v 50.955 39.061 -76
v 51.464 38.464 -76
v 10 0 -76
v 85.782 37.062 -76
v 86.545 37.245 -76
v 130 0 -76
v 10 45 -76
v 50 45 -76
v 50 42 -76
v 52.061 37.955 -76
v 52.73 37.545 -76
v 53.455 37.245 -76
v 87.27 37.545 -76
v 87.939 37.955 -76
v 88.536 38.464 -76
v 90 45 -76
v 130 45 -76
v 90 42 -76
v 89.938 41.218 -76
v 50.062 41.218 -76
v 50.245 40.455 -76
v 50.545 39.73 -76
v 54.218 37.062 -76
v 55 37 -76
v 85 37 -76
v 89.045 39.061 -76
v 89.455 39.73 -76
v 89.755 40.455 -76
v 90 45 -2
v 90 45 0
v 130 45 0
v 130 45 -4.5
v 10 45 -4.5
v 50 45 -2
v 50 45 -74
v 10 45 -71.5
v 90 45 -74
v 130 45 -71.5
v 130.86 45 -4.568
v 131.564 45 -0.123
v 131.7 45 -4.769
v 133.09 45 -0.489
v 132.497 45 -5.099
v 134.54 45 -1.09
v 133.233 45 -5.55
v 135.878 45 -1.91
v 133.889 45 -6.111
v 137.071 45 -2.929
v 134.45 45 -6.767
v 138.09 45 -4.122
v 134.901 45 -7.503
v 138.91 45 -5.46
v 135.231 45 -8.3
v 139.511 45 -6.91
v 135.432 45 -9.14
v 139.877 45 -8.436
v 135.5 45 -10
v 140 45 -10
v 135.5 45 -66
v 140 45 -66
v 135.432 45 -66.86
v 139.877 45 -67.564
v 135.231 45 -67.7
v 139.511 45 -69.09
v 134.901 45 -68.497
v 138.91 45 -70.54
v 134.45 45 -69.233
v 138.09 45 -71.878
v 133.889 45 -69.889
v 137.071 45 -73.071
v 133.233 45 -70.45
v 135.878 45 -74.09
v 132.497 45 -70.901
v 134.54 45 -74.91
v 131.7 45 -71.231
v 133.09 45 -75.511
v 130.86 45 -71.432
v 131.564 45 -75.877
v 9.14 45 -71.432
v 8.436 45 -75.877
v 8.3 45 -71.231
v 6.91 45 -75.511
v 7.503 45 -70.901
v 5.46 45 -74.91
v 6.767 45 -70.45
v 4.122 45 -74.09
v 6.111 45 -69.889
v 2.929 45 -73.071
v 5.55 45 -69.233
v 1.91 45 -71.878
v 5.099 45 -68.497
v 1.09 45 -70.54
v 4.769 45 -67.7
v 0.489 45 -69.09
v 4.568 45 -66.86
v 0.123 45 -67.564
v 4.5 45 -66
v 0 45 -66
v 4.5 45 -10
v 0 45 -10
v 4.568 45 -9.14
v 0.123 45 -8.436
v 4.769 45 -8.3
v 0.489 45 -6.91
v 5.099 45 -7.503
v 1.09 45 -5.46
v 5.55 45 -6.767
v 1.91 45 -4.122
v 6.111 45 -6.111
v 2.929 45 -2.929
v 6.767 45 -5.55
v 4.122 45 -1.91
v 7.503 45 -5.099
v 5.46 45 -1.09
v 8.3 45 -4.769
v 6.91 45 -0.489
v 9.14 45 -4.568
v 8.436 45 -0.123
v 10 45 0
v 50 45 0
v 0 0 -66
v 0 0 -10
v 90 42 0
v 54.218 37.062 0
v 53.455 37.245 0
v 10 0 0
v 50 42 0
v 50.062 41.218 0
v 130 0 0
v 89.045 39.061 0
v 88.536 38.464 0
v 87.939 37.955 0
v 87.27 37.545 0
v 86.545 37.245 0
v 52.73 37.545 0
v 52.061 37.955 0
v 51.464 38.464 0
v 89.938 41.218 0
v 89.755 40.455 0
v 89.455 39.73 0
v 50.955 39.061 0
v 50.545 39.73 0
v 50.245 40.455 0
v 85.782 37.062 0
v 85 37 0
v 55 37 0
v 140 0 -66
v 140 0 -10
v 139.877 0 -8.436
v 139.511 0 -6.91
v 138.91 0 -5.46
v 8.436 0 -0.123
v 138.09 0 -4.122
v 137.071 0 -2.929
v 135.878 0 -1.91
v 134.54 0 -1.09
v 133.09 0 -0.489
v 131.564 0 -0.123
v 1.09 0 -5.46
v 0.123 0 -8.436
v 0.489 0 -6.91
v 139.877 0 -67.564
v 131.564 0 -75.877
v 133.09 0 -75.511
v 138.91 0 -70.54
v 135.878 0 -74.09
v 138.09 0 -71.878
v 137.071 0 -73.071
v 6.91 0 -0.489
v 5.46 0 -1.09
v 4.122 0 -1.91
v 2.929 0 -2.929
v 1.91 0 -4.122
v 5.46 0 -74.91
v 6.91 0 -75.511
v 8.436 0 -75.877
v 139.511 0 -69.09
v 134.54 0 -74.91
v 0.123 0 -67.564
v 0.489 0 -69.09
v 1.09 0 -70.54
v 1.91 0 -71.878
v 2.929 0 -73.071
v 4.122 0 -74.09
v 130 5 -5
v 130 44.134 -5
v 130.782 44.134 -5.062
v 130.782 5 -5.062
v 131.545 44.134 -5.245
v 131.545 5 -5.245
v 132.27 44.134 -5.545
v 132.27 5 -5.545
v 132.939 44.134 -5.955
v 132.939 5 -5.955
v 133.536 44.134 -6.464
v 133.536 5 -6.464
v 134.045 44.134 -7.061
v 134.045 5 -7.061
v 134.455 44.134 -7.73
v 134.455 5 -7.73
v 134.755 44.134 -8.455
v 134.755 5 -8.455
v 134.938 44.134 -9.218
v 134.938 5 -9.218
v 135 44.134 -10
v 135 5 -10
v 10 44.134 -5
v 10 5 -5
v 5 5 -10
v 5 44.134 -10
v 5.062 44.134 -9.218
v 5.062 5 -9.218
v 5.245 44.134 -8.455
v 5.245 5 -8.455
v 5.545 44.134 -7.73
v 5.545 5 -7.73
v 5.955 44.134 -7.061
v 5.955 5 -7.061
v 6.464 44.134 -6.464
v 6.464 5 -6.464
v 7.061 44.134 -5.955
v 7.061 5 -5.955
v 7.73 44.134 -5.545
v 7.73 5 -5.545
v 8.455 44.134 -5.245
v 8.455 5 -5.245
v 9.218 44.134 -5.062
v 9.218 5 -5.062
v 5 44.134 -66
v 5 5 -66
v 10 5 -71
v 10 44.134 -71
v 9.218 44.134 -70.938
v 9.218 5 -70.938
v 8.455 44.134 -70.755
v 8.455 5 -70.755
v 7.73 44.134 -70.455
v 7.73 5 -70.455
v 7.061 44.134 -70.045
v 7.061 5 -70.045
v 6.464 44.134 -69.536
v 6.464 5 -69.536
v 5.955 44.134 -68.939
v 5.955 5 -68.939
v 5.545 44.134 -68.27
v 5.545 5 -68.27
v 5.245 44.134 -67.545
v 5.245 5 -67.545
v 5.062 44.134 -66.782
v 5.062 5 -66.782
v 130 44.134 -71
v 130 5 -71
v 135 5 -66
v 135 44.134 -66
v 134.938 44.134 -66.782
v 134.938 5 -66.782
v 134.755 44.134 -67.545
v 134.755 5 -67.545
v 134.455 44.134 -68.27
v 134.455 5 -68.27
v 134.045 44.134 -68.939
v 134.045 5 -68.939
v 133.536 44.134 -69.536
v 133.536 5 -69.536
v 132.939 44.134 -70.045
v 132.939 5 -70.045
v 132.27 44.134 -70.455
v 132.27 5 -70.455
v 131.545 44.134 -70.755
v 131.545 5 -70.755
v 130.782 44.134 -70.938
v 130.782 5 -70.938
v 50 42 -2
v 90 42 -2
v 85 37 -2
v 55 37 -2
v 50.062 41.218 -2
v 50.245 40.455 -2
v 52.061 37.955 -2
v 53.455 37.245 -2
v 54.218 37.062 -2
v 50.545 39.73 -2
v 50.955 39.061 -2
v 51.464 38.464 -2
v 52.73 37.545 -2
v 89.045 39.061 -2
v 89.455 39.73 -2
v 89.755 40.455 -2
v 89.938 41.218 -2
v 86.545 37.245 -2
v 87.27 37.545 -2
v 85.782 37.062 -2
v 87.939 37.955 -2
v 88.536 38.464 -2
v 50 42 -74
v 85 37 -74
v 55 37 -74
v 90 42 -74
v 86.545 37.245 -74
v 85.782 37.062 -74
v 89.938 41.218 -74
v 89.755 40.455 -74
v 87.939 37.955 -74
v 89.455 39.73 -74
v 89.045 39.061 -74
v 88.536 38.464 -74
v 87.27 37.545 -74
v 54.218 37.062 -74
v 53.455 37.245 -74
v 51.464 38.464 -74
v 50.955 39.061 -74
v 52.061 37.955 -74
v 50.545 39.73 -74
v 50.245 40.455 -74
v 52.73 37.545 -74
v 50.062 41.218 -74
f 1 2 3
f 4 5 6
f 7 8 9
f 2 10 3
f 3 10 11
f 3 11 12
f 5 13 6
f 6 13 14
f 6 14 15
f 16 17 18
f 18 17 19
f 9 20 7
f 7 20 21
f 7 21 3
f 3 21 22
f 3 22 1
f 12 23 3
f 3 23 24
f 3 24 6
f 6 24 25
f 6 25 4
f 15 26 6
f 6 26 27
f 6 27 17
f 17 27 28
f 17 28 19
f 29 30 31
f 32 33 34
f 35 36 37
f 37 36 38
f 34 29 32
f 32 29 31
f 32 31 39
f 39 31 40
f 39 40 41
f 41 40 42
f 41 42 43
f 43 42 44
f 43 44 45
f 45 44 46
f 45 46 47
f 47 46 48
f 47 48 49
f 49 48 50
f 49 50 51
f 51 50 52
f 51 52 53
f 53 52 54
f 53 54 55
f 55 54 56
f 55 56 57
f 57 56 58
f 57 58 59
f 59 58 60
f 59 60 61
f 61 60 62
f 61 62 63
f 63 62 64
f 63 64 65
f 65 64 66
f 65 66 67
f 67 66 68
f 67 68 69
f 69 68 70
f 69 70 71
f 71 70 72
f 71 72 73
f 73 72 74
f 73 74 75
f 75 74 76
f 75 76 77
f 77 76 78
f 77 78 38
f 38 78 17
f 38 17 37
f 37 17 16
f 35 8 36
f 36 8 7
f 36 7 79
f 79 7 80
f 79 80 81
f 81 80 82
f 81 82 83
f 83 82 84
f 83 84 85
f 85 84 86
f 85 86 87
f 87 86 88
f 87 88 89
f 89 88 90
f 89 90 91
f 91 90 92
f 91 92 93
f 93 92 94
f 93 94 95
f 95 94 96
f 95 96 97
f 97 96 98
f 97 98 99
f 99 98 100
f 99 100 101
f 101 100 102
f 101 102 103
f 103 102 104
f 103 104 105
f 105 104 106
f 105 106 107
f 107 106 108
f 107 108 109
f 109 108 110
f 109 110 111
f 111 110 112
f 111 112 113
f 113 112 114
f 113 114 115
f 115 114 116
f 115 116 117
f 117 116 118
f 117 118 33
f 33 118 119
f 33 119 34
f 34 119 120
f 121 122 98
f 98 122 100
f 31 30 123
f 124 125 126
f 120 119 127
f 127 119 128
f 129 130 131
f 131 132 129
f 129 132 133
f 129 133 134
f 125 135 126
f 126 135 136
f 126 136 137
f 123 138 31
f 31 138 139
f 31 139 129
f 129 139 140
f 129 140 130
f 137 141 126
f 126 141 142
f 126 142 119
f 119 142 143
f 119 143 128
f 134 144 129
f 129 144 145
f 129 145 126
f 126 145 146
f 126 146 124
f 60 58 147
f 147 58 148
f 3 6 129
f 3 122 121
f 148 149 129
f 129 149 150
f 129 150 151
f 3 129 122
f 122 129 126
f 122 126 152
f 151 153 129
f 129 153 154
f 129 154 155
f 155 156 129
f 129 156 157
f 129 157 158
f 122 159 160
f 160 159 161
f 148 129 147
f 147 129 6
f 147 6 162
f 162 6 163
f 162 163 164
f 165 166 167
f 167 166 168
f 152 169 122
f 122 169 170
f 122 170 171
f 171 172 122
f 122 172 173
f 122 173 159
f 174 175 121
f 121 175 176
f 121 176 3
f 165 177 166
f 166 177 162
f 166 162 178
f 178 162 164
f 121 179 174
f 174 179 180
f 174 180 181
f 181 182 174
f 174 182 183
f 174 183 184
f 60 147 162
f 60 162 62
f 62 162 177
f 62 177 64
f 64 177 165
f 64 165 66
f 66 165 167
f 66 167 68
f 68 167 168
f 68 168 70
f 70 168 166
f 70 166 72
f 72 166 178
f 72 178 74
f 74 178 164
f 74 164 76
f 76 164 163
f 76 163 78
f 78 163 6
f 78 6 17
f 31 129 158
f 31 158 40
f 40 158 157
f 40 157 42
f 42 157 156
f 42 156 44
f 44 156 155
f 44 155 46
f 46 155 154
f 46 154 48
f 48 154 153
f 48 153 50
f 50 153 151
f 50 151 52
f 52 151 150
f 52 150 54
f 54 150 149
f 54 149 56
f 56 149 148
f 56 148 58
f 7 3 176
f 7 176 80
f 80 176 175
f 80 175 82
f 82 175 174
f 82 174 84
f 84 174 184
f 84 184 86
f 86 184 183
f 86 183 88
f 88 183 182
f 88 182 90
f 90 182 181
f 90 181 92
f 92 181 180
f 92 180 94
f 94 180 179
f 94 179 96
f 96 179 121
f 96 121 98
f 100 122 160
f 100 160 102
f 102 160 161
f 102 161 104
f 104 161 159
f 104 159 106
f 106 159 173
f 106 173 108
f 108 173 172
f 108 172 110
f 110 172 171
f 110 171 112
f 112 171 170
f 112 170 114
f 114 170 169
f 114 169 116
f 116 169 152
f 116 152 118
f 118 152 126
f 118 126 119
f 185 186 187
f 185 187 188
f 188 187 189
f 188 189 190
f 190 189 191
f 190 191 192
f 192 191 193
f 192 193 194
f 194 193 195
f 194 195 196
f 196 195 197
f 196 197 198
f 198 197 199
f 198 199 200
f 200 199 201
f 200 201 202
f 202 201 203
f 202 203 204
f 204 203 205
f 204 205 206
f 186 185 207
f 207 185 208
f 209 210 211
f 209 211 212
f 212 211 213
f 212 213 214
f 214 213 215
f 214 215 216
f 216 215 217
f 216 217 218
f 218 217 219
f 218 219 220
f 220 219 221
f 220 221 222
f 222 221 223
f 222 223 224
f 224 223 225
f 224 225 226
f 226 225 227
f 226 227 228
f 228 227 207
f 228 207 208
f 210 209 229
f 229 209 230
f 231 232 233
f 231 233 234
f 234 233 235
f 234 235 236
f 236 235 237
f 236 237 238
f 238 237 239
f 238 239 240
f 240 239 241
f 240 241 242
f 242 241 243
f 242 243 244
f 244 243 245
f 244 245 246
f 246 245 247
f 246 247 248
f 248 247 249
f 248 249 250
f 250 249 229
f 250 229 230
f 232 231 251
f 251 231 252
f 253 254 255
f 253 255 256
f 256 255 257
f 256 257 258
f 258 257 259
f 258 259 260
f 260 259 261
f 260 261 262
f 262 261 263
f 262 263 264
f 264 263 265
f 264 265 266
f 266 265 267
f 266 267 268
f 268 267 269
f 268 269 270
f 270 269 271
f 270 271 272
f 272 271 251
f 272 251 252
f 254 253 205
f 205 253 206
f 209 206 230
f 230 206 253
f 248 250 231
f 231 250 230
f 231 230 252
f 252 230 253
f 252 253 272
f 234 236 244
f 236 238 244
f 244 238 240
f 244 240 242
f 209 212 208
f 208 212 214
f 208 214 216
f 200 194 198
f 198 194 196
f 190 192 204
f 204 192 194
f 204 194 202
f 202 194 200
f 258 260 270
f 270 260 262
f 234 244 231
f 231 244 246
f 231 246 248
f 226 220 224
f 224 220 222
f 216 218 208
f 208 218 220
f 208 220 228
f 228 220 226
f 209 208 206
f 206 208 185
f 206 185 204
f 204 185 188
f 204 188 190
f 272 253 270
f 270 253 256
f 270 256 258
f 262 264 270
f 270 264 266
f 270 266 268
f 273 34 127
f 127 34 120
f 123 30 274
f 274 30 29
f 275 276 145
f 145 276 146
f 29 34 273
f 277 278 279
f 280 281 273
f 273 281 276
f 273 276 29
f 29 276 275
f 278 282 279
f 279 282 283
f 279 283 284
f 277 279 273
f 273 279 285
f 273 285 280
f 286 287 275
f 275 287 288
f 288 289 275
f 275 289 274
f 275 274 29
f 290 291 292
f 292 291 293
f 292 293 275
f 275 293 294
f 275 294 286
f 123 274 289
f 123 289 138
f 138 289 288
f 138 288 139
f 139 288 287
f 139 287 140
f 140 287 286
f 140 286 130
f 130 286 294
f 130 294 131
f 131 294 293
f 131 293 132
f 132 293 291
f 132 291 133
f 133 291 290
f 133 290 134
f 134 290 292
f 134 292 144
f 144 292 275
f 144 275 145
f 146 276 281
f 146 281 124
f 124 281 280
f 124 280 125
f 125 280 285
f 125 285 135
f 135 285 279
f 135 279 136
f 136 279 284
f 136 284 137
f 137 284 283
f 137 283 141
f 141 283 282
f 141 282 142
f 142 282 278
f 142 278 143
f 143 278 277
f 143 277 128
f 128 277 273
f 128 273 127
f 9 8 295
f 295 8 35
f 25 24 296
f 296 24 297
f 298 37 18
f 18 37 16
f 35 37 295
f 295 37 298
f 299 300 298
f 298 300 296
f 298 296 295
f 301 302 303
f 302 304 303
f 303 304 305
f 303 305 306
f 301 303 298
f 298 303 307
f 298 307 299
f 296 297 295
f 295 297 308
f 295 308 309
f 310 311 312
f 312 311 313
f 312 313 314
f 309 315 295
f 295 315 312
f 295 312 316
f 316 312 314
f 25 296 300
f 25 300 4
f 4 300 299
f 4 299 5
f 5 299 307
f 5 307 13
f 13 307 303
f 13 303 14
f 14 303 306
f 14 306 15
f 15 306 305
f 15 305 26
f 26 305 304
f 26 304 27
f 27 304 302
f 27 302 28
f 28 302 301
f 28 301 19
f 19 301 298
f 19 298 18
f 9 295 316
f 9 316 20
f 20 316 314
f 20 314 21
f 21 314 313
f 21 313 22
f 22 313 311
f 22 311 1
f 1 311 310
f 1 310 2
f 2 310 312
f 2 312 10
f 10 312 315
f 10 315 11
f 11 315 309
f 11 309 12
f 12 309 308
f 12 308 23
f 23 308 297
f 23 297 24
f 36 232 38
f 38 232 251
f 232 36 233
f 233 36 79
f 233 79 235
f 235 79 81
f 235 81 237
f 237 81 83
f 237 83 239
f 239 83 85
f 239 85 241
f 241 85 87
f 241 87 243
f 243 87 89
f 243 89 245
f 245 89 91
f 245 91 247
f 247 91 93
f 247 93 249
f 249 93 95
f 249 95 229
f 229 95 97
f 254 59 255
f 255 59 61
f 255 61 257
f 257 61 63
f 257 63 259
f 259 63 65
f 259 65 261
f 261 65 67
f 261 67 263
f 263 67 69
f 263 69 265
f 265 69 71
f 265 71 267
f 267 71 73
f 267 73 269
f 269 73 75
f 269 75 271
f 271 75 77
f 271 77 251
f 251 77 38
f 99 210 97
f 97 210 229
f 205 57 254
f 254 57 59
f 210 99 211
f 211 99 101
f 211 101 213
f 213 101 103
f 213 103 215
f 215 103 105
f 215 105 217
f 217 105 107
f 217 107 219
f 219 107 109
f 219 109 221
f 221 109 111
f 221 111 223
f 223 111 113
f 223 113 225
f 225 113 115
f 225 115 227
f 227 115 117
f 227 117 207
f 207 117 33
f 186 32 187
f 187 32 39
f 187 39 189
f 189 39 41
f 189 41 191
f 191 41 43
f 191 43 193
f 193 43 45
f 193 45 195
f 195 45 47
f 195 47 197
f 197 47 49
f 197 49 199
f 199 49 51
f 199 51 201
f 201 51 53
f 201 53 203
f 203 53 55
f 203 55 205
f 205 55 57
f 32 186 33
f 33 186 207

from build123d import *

# Parameters (mm, degrees)
SKETCH1_W            = 140
SKETCH1_H            = 76
BOSS_EXTRUDE1_DEPTH  = 45
FILLET2_R            = 10
CUT_EXTRUDE2_DEPTH   = 40
SKETCH5_W            = 40
SKETCH5_H            = 8
CUT_EXTRUDE3_DEPTH   = 2
FILLET3_R            = 5
FILLET3_OF_MIRROR1_R = 5
CHAMFER1_SIZE        = 0.5
CHAMFER1_SIZE2       = 0.866025404


with BuildPart() as part:
    # Sketch1 → Boss-Extrude1 (new body)
    with BuildSketch(Plane(origin=(0, 0, 0), x_dir=(1, 0, 0), z_dir=(0, 1, 0))):
        with Locations((70, 38)):
            Rectangle(SKETCH1_W, SKETCH1_H)
    extrude(amount=BOSS_EXTRUDE1_DEPTH)

    # Fillet2
    fillet2_edges = [part.edges().sort_by_distance(p)[0] for p in [
        (0, 22.5, -76),
        (140, 22.5, -76),
        (140, 22.5, 0),
        (0, 22.5, 0),
    ]]
    fillet(fillet2_edges, radius=FILLET2_R)

    # Sketch4 → Cut-Extrude2 (cut)
    with BuildSketch(Plane(origin=(0, 45, 0), x_dir=(1, 0, 0), z_dir=(0, 1, 0))):
        with BuildLine():
            Line((135, 10), (135, 66))
            ThreePointArc((135, 66), (133.535533906, 69.535533906), (130, 71))
            Line((130, 71), (10, 71))
            ThreePointArc((10, 71), (6.464466094, 69.535533906), (5, 66))
            Line((5, 66), (5, 10))
            ThreePointArc((5, 10), (6.464466094, 6.464466094), (10, 5))
            Line((10, 5), (130, 5))
            ThreePointArc((130, 5), (133.535533906, 6.464466094), (135, 10))
        make_face()
    extrude(amount=-CUT_EXTRUDE2_DEPTH, mode=Mode.SUBTRACT)

    # Sketch5 → Cut-Extrude3 (cut)
    with BuildSketch(Plane.XY):
        with Locations((70, 41)):
            Rectangle(SKETCH5_W, SKETCH5_H)
    cut_extrude3 = extrude(amount=-CUT_EXTRUDE3_DEPTH, mode=Mode.SUBTRACT)

    # Fillet3
    fillet3_edges = [part.edges().sort_by_distance(p)[0] for p in [
        (50, 37, -1),
        (90, 37, -1),
    ]]
    fillet(fillet3_edges, radius=FILLET3_R)

    # Mirror1: Cut-Extrude3 across plane
    add(cut_extrude3.mirror(Plane.XY.offset(-38)), mode=Mode.SUBTRACT)

    # Fillet3 of Mirror1
    fillet3_of_mirror1_edges = [part.edges().sort_by_distance(p)[0] for p in [
        (50, 37, -75),
        (90, 37, -75),
    ]]
    fillet(fillet3_of_mirror1_edges, radius=FILLET3_OF_MIRROR1_R)

    # Chamfer1
    chamfer1_edges = [part.edges().sort_by_distance(p)[0] for p in [
        (133.535533906, 45, -6.464466094),
        (135, 45, -38),
        (133.535533906, 45, -69.535533906),
        (70, 45, -71),
        (6.464466094, 45, -69.535533906),
        (5, 45, -38),
        (6.464466094, 45, -6.464466094),
        (70, 45, -5),
    ]]
    chamfer1_side = [part.faces().sort_by_distance(p)[0] for p in [
        (4.055342415, 45, -4.055342415),
    ]]
    chamfer(chamfer1_edges, length=CHAMFER1_SIZE, length2=CHAMFER1_SIZE2, reference=chamfer1_side[0])


solid = part.part
